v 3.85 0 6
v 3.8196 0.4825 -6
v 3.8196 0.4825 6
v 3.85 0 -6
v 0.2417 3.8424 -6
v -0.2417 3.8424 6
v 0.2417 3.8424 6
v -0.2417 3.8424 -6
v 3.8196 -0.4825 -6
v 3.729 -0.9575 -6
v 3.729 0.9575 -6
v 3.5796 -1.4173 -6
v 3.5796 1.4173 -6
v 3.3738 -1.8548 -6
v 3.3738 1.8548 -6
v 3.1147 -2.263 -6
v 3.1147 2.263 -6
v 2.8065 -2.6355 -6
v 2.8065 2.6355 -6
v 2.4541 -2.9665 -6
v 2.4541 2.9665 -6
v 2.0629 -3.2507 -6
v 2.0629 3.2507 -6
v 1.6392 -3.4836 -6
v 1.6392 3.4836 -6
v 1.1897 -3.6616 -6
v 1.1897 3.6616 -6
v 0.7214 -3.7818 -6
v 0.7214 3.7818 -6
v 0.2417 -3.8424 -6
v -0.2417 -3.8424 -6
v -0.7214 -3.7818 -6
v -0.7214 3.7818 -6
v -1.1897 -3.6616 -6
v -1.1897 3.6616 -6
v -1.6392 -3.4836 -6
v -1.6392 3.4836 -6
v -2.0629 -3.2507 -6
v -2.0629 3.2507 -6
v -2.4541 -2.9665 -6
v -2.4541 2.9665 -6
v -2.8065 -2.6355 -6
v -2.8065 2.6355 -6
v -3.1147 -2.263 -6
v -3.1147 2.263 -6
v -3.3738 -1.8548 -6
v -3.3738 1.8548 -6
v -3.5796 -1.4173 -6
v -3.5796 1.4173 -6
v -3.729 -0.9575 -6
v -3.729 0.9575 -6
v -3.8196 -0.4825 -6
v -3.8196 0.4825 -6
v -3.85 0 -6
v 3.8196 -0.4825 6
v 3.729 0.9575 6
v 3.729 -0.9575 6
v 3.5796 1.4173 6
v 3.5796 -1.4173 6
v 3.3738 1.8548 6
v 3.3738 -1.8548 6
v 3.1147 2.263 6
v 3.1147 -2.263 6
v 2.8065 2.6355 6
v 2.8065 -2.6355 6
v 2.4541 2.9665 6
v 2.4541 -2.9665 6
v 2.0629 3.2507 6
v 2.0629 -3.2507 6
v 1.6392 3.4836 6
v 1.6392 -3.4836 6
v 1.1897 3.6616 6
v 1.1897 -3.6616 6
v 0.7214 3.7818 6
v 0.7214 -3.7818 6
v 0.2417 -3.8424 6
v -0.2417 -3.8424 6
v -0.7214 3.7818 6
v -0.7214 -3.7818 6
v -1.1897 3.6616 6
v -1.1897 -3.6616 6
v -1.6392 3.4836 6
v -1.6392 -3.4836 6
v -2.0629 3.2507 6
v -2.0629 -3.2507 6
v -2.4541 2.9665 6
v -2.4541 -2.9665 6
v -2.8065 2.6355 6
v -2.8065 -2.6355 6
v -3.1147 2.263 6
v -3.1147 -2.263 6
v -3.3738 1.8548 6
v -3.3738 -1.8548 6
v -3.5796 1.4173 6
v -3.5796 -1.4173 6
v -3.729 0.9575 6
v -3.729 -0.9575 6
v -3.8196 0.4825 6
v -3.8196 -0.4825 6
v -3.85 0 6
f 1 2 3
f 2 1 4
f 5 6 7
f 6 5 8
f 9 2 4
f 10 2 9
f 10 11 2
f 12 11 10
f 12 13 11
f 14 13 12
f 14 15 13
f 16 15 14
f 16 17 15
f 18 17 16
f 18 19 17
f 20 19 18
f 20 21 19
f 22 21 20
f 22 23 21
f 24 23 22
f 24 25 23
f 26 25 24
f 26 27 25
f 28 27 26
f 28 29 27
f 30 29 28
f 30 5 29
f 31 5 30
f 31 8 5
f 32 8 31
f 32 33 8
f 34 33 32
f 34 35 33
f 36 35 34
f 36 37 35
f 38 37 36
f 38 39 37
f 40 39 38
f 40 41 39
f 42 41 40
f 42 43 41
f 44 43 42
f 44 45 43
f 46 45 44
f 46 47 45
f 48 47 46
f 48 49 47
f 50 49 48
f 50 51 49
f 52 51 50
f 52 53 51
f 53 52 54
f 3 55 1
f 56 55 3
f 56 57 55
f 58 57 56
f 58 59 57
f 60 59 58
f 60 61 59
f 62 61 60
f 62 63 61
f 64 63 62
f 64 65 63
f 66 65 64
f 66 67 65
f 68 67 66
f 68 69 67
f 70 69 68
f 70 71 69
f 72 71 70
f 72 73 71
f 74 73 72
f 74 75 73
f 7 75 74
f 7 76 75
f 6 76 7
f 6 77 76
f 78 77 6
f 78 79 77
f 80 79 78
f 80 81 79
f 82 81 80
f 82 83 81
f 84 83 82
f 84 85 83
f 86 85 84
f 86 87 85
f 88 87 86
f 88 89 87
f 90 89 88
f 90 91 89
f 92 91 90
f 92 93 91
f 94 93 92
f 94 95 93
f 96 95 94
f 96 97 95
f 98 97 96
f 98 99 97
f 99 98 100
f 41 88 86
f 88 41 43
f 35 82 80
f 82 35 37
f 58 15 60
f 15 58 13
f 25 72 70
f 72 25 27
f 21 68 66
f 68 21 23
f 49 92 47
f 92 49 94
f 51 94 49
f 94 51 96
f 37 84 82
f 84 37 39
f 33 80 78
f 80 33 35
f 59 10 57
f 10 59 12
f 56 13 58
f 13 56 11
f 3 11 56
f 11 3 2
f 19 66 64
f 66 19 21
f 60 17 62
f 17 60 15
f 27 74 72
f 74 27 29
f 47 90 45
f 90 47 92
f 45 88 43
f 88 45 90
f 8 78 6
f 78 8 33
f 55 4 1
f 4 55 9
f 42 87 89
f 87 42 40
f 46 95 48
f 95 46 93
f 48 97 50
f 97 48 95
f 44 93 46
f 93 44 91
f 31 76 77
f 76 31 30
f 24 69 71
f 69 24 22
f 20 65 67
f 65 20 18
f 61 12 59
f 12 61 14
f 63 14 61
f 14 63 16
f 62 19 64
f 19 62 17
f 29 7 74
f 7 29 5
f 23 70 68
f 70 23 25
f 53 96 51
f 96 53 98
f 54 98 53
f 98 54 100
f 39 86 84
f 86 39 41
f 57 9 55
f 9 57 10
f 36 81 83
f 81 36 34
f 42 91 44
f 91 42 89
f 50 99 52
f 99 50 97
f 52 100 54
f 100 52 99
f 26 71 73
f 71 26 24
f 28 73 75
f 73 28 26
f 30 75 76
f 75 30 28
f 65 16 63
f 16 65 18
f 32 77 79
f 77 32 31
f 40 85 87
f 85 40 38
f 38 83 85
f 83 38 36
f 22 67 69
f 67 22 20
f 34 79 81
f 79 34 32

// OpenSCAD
$fn = 50;


difference() {
	union() {
		translate(v = [0, 0, -6.0000000000]) {
			cylinder(h = 12, r = 3.8500000000);
		}
	}
	union() {
		translate(v = [0, 0, -100.0000000000]) {
			cylinder(h = 200, r = 0);
		}
	}
}
